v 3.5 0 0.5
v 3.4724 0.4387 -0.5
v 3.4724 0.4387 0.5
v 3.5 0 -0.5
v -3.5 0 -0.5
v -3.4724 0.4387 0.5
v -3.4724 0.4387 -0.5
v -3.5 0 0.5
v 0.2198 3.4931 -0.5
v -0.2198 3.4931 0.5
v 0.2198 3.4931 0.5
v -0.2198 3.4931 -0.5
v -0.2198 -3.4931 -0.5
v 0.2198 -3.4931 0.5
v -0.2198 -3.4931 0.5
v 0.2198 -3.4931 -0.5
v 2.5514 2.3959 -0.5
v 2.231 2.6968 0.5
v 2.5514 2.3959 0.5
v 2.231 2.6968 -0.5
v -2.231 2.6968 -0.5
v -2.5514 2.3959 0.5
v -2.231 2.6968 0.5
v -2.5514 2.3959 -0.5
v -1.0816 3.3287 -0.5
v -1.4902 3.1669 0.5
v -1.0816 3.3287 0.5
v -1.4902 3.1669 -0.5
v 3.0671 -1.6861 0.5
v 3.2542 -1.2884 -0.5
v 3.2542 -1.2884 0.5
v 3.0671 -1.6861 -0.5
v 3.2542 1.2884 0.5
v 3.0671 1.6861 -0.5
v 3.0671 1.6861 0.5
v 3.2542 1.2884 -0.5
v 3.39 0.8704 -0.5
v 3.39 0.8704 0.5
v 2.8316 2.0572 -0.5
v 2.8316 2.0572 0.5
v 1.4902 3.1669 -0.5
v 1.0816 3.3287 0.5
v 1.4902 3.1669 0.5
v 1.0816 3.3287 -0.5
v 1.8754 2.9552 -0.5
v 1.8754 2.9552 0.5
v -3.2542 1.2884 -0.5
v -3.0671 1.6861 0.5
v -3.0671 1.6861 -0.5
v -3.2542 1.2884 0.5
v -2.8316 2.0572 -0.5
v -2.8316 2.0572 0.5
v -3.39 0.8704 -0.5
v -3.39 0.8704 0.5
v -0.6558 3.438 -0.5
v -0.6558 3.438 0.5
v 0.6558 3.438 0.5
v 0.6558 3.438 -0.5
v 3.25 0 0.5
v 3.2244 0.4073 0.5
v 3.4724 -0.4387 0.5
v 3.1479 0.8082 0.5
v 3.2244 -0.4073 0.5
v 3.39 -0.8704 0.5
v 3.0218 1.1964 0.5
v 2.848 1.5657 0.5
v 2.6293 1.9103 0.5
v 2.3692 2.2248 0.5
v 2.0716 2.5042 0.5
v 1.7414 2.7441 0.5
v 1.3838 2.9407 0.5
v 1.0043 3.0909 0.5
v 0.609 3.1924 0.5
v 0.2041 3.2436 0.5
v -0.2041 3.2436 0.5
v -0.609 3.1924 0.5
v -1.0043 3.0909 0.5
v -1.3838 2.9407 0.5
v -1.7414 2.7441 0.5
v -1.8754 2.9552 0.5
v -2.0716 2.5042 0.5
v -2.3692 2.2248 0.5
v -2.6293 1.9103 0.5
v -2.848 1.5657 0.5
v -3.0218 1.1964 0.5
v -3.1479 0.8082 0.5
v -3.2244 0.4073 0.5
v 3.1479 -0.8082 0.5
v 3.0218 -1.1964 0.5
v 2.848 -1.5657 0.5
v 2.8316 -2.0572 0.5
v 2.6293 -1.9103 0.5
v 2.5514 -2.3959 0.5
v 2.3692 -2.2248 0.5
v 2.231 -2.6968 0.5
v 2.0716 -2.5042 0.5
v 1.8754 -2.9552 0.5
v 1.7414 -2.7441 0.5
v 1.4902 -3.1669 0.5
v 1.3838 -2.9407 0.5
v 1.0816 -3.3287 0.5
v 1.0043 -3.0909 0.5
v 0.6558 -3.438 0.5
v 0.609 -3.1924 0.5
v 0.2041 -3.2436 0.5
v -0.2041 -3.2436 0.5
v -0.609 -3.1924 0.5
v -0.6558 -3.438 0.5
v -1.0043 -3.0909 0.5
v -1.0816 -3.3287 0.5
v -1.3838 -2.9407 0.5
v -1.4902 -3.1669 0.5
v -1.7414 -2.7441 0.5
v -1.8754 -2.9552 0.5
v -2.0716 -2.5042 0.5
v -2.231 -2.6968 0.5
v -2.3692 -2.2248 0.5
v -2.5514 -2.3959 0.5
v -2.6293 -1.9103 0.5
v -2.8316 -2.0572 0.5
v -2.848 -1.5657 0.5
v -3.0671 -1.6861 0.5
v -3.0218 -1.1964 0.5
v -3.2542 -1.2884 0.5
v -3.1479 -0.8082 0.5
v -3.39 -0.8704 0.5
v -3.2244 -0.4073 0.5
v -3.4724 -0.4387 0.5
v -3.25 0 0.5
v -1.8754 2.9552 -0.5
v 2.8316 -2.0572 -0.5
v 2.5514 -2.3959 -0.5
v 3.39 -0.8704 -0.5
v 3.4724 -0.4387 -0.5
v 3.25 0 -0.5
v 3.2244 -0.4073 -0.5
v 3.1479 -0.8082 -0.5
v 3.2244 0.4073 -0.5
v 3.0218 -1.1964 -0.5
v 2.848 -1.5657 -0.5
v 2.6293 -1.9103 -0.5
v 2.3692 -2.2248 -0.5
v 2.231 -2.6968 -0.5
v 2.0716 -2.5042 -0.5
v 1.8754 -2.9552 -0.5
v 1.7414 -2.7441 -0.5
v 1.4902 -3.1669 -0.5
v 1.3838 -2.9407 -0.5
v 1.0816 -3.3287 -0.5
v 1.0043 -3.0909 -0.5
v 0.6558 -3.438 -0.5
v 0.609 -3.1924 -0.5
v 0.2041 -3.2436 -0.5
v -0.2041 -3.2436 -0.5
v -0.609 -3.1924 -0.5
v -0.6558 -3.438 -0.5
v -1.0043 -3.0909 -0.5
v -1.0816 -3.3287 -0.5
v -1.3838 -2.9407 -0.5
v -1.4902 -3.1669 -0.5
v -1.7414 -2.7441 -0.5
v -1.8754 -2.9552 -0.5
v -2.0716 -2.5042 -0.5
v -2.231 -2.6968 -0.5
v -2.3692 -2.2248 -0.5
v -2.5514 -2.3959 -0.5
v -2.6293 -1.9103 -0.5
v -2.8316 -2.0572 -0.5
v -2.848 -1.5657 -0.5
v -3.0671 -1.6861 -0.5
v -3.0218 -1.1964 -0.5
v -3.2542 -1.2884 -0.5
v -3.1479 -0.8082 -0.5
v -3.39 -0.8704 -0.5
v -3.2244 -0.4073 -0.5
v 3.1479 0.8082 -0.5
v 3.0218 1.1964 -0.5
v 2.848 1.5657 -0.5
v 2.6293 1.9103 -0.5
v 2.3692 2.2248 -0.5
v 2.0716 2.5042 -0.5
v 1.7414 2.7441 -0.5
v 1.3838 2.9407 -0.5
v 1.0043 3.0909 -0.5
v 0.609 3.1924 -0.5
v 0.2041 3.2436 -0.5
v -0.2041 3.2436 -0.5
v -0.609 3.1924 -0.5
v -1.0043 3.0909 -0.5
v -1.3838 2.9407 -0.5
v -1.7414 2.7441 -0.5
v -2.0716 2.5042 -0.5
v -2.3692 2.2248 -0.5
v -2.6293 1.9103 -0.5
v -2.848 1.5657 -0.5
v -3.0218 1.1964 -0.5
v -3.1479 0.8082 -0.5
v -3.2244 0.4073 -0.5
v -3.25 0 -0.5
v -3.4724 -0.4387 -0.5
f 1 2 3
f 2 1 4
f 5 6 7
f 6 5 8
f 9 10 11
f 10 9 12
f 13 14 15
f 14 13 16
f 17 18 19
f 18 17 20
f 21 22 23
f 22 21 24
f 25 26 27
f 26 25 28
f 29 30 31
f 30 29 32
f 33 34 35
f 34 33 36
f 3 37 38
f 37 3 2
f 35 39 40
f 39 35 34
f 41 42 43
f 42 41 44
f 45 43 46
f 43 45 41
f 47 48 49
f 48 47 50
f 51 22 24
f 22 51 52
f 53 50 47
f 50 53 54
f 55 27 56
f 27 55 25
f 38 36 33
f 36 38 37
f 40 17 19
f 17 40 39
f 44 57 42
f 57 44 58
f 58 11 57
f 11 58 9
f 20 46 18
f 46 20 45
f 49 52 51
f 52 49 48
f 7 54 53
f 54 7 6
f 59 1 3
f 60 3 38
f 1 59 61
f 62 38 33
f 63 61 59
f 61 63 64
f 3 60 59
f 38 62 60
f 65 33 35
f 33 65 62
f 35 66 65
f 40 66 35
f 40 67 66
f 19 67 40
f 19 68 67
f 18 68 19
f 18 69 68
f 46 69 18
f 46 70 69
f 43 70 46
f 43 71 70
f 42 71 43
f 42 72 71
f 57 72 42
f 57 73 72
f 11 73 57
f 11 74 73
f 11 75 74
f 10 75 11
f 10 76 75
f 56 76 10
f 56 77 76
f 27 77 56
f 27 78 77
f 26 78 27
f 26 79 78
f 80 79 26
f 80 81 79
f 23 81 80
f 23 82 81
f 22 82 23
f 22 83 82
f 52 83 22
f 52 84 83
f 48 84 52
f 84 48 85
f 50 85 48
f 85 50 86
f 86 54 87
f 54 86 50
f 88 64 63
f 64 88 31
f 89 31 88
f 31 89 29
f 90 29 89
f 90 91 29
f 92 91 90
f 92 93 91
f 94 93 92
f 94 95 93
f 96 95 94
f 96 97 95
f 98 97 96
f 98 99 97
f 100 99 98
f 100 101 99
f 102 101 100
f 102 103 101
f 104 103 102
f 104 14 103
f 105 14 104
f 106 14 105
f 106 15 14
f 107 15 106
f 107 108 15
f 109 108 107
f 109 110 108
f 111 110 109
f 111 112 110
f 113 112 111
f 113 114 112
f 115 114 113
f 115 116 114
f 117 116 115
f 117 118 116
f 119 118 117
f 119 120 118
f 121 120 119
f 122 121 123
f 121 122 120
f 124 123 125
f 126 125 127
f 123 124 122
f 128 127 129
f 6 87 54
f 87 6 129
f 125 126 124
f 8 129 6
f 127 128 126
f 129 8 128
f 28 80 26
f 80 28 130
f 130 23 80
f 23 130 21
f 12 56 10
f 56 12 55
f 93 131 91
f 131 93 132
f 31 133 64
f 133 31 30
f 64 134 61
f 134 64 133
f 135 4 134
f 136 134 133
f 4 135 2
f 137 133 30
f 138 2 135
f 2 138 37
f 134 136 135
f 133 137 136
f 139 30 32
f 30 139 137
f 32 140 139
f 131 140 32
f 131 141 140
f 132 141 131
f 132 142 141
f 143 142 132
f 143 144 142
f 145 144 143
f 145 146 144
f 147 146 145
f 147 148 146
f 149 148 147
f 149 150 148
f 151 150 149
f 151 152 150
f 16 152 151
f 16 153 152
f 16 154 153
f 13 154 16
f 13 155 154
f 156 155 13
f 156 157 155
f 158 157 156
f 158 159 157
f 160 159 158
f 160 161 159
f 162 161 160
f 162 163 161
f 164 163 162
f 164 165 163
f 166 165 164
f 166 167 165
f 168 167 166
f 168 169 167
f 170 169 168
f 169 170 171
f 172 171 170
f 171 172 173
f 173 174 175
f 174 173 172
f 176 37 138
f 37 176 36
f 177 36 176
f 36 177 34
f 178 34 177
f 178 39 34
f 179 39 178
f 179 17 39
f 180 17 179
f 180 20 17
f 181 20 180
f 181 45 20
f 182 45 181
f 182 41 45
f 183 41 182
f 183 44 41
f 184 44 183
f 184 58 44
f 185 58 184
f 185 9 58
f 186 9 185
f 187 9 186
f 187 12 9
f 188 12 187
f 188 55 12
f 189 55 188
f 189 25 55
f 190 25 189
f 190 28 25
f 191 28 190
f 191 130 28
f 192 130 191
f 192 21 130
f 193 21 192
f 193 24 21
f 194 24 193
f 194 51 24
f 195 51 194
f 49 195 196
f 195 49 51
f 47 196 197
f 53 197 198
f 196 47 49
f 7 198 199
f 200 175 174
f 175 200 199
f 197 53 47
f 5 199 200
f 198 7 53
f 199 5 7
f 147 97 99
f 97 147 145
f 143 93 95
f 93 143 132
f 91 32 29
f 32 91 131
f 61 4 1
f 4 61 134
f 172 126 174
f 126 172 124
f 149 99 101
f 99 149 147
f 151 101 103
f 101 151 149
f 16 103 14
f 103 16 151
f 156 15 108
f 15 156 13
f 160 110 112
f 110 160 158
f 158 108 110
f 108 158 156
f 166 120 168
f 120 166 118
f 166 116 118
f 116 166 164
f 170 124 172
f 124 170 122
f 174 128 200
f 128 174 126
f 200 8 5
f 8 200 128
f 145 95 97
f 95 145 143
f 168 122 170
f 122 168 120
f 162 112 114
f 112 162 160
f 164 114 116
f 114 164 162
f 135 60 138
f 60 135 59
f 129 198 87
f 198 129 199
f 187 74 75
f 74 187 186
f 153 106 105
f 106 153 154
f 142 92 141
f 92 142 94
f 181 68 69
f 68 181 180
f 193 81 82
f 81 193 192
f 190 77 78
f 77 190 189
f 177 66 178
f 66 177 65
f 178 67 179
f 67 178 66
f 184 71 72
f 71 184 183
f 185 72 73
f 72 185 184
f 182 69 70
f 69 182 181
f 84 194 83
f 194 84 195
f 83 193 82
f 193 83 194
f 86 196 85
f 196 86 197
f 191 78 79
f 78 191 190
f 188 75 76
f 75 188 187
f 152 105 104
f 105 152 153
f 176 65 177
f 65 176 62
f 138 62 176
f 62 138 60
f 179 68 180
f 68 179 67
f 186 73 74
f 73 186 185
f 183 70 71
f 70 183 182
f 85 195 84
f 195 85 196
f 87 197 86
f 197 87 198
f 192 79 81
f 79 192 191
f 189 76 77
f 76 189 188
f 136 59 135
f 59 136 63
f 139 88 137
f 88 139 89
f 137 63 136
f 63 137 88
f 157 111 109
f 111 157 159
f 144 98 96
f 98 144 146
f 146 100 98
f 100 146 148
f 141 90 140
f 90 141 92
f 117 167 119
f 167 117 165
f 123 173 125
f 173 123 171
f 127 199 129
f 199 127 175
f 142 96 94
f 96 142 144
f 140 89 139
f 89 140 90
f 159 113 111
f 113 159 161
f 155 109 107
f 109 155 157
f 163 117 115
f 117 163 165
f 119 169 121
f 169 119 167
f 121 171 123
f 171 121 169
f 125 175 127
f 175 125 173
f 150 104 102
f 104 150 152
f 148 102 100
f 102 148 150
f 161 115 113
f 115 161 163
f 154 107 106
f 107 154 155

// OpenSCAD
$fn = 50;


difference() {
	union() {
		translate(v = [0, 0, -0.5000000000]) {
			cylinder(h = 1, r = 3.5000000000);
		}
	}
	union() {
		translate(v = [0, 0, -100.0000000000]) {
			cylinder(h = 200, r = 3.2500000000);
		}
	}
}
